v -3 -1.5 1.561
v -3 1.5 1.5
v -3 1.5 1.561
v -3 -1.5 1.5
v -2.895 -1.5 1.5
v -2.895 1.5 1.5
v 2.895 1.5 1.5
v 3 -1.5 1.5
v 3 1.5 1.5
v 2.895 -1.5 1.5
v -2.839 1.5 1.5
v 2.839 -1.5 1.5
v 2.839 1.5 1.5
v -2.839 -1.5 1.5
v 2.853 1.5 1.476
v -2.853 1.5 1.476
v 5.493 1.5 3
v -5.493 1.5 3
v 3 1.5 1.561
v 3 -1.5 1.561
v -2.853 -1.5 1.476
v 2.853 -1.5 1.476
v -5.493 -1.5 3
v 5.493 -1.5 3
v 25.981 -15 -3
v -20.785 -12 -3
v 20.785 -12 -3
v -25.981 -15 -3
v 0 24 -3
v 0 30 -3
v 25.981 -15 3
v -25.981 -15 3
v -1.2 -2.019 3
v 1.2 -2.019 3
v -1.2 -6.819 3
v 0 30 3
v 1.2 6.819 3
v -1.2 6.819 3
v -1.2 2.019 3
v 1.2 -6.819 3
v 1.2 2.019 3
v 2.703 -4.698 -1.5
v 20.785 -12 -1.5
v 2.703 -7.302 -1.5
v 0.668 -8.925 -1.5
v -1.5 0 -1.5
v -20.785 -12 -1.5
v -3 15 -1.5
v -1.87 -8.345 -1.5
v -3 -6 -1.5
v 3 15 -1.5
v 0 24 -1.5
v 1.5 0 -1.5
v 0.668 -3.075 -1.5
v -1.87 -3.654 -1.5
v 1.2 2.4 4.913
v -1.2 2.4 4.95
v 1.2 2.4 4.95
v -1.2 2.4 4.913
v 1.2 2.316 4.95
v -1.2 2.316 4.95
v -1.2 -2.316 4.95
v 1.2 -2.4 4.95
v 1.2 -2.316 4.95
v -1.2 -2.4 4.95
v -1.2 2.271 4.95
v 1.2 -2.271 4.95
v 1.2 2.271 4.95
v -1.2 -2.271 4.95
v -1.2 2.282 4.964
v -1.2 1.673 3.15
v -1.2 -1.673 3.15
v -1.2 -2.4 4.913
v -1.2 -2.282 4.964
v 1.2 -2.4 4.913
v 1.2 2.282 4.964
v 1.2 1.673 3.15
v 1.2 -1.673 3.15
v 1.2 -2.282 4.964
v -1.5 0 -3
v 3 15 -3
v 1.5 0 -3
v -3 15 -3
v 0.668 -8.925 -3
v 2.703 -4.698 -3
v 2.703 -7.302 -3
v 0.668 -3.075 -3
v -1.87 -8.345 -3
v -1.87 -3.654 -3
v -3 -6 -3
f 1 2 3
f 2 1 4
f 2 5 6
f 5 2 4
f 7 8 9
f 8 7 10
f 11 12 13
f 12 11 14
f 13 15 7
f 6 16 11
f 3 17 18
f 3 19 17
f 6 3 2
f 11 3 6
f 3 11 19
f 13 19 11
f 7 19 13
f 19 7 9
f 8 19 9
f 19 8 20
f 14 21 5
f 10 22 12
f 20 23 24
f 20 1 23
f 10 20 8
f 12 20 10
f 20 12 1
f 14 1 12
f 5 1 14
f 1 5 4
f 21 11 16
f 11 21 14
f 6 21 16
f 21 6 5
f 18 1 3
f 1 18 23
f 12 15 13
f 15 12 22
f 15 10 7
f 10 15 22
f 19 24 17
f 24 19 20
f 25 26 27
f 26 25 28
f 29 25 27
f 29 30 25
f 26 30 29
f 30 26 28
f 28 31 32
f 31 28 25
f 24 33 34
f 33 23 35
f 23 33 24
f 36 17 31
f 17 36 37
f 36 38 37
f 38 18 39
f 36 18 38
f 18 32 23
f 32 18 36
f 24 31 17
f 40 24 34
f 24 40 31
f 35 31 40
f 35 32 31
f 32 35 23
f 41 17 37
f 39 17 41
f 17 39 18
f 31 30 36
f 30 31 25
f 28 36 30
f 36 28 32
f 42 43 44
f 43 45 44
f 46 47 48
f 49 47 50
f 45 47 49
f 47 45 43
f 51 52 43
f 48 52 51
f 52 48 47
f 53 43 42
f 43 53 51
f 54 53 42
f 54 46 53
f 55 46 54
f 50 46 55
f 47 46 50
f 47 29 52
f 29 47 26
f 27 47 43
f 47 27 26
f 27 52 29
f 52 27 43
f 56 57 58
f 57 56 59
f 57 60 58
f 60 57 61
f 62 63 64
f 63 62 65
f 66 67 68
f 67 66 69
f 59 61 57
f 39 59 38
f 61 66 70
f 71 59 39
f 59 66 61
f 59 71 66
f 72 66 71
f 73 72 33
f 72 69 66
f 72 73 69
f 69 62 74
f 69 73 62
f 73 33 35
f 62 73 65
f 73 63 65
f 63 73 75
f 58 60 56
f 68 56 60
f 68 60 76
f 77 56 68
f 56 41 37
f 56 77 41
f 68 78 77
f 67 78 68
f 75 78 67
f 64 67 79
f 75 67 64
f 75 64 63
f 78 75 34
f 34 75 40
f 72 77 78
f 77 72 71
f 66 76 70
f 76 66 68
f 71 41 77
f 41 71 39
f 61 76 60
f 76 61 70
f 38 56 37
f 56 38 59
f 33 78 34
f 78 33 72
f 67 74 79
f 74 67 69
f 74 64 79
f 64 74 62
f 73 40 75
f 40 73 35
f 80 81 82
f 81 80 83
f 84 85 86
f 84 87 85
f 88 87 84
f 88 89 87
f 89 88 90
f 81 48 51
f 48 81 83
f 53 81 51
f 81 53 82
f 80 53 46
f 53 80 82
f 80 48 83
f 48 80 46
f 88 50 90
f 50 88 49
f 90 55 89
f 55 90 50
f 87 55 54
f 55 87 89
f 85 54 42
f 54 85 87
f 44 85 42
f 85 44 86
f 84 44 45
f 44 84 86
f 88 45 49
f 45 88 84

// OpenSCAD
r = 20;
module triangle(l, r){
    linear_extrude(l){
        polygon([
            [cos(90)*r, sin(90)*r],
            [cos(210)*r, sin(210)*r],
            [cos(330)*r, sin(330)*r]
        ]);
    }
}

module pin_part(){
            translate([0,0,2])
            rotate([0, 90, 90])
            cube([2, 2, 4], center = true);
            
            translate([0,4,0.65])
            rotate([60, 0, 0])
            cube([2, 2, 6], center = true);
            
            translate([0,-4,0.65])
            rotate([-60, 0, 0])
            cube([2, 2, 6], center = true);
}

scale([1.5, 1.5, 1.5])
union(){
    difference(){
        color("black")
        translate([0, 0, -2])
        triangle(4, r);
        
        color("yellow")
        rotate([0, 180, 0])
        translate([0, 0, 1])
        triangle(2, r-4);
        
        translate([0, 0, 4])
        rotate([0, 180, 90])
        pin_part();
    }
    translate([0, 0, 1.5])
    scale([0.8, 0.8, 0.6])
    pin_part();

    rotate([0, 180, 0])
    translate([0, 0, 1])
    color("black")
    linear_extrude(1){
        translate([0, -1/5*r, 0])
        circle(2);
        
        polygon(
            [
            [-1, 0],
            [1, 0],
            [2, 10],
            [-2, 10]
        ]
        );
    }
}
